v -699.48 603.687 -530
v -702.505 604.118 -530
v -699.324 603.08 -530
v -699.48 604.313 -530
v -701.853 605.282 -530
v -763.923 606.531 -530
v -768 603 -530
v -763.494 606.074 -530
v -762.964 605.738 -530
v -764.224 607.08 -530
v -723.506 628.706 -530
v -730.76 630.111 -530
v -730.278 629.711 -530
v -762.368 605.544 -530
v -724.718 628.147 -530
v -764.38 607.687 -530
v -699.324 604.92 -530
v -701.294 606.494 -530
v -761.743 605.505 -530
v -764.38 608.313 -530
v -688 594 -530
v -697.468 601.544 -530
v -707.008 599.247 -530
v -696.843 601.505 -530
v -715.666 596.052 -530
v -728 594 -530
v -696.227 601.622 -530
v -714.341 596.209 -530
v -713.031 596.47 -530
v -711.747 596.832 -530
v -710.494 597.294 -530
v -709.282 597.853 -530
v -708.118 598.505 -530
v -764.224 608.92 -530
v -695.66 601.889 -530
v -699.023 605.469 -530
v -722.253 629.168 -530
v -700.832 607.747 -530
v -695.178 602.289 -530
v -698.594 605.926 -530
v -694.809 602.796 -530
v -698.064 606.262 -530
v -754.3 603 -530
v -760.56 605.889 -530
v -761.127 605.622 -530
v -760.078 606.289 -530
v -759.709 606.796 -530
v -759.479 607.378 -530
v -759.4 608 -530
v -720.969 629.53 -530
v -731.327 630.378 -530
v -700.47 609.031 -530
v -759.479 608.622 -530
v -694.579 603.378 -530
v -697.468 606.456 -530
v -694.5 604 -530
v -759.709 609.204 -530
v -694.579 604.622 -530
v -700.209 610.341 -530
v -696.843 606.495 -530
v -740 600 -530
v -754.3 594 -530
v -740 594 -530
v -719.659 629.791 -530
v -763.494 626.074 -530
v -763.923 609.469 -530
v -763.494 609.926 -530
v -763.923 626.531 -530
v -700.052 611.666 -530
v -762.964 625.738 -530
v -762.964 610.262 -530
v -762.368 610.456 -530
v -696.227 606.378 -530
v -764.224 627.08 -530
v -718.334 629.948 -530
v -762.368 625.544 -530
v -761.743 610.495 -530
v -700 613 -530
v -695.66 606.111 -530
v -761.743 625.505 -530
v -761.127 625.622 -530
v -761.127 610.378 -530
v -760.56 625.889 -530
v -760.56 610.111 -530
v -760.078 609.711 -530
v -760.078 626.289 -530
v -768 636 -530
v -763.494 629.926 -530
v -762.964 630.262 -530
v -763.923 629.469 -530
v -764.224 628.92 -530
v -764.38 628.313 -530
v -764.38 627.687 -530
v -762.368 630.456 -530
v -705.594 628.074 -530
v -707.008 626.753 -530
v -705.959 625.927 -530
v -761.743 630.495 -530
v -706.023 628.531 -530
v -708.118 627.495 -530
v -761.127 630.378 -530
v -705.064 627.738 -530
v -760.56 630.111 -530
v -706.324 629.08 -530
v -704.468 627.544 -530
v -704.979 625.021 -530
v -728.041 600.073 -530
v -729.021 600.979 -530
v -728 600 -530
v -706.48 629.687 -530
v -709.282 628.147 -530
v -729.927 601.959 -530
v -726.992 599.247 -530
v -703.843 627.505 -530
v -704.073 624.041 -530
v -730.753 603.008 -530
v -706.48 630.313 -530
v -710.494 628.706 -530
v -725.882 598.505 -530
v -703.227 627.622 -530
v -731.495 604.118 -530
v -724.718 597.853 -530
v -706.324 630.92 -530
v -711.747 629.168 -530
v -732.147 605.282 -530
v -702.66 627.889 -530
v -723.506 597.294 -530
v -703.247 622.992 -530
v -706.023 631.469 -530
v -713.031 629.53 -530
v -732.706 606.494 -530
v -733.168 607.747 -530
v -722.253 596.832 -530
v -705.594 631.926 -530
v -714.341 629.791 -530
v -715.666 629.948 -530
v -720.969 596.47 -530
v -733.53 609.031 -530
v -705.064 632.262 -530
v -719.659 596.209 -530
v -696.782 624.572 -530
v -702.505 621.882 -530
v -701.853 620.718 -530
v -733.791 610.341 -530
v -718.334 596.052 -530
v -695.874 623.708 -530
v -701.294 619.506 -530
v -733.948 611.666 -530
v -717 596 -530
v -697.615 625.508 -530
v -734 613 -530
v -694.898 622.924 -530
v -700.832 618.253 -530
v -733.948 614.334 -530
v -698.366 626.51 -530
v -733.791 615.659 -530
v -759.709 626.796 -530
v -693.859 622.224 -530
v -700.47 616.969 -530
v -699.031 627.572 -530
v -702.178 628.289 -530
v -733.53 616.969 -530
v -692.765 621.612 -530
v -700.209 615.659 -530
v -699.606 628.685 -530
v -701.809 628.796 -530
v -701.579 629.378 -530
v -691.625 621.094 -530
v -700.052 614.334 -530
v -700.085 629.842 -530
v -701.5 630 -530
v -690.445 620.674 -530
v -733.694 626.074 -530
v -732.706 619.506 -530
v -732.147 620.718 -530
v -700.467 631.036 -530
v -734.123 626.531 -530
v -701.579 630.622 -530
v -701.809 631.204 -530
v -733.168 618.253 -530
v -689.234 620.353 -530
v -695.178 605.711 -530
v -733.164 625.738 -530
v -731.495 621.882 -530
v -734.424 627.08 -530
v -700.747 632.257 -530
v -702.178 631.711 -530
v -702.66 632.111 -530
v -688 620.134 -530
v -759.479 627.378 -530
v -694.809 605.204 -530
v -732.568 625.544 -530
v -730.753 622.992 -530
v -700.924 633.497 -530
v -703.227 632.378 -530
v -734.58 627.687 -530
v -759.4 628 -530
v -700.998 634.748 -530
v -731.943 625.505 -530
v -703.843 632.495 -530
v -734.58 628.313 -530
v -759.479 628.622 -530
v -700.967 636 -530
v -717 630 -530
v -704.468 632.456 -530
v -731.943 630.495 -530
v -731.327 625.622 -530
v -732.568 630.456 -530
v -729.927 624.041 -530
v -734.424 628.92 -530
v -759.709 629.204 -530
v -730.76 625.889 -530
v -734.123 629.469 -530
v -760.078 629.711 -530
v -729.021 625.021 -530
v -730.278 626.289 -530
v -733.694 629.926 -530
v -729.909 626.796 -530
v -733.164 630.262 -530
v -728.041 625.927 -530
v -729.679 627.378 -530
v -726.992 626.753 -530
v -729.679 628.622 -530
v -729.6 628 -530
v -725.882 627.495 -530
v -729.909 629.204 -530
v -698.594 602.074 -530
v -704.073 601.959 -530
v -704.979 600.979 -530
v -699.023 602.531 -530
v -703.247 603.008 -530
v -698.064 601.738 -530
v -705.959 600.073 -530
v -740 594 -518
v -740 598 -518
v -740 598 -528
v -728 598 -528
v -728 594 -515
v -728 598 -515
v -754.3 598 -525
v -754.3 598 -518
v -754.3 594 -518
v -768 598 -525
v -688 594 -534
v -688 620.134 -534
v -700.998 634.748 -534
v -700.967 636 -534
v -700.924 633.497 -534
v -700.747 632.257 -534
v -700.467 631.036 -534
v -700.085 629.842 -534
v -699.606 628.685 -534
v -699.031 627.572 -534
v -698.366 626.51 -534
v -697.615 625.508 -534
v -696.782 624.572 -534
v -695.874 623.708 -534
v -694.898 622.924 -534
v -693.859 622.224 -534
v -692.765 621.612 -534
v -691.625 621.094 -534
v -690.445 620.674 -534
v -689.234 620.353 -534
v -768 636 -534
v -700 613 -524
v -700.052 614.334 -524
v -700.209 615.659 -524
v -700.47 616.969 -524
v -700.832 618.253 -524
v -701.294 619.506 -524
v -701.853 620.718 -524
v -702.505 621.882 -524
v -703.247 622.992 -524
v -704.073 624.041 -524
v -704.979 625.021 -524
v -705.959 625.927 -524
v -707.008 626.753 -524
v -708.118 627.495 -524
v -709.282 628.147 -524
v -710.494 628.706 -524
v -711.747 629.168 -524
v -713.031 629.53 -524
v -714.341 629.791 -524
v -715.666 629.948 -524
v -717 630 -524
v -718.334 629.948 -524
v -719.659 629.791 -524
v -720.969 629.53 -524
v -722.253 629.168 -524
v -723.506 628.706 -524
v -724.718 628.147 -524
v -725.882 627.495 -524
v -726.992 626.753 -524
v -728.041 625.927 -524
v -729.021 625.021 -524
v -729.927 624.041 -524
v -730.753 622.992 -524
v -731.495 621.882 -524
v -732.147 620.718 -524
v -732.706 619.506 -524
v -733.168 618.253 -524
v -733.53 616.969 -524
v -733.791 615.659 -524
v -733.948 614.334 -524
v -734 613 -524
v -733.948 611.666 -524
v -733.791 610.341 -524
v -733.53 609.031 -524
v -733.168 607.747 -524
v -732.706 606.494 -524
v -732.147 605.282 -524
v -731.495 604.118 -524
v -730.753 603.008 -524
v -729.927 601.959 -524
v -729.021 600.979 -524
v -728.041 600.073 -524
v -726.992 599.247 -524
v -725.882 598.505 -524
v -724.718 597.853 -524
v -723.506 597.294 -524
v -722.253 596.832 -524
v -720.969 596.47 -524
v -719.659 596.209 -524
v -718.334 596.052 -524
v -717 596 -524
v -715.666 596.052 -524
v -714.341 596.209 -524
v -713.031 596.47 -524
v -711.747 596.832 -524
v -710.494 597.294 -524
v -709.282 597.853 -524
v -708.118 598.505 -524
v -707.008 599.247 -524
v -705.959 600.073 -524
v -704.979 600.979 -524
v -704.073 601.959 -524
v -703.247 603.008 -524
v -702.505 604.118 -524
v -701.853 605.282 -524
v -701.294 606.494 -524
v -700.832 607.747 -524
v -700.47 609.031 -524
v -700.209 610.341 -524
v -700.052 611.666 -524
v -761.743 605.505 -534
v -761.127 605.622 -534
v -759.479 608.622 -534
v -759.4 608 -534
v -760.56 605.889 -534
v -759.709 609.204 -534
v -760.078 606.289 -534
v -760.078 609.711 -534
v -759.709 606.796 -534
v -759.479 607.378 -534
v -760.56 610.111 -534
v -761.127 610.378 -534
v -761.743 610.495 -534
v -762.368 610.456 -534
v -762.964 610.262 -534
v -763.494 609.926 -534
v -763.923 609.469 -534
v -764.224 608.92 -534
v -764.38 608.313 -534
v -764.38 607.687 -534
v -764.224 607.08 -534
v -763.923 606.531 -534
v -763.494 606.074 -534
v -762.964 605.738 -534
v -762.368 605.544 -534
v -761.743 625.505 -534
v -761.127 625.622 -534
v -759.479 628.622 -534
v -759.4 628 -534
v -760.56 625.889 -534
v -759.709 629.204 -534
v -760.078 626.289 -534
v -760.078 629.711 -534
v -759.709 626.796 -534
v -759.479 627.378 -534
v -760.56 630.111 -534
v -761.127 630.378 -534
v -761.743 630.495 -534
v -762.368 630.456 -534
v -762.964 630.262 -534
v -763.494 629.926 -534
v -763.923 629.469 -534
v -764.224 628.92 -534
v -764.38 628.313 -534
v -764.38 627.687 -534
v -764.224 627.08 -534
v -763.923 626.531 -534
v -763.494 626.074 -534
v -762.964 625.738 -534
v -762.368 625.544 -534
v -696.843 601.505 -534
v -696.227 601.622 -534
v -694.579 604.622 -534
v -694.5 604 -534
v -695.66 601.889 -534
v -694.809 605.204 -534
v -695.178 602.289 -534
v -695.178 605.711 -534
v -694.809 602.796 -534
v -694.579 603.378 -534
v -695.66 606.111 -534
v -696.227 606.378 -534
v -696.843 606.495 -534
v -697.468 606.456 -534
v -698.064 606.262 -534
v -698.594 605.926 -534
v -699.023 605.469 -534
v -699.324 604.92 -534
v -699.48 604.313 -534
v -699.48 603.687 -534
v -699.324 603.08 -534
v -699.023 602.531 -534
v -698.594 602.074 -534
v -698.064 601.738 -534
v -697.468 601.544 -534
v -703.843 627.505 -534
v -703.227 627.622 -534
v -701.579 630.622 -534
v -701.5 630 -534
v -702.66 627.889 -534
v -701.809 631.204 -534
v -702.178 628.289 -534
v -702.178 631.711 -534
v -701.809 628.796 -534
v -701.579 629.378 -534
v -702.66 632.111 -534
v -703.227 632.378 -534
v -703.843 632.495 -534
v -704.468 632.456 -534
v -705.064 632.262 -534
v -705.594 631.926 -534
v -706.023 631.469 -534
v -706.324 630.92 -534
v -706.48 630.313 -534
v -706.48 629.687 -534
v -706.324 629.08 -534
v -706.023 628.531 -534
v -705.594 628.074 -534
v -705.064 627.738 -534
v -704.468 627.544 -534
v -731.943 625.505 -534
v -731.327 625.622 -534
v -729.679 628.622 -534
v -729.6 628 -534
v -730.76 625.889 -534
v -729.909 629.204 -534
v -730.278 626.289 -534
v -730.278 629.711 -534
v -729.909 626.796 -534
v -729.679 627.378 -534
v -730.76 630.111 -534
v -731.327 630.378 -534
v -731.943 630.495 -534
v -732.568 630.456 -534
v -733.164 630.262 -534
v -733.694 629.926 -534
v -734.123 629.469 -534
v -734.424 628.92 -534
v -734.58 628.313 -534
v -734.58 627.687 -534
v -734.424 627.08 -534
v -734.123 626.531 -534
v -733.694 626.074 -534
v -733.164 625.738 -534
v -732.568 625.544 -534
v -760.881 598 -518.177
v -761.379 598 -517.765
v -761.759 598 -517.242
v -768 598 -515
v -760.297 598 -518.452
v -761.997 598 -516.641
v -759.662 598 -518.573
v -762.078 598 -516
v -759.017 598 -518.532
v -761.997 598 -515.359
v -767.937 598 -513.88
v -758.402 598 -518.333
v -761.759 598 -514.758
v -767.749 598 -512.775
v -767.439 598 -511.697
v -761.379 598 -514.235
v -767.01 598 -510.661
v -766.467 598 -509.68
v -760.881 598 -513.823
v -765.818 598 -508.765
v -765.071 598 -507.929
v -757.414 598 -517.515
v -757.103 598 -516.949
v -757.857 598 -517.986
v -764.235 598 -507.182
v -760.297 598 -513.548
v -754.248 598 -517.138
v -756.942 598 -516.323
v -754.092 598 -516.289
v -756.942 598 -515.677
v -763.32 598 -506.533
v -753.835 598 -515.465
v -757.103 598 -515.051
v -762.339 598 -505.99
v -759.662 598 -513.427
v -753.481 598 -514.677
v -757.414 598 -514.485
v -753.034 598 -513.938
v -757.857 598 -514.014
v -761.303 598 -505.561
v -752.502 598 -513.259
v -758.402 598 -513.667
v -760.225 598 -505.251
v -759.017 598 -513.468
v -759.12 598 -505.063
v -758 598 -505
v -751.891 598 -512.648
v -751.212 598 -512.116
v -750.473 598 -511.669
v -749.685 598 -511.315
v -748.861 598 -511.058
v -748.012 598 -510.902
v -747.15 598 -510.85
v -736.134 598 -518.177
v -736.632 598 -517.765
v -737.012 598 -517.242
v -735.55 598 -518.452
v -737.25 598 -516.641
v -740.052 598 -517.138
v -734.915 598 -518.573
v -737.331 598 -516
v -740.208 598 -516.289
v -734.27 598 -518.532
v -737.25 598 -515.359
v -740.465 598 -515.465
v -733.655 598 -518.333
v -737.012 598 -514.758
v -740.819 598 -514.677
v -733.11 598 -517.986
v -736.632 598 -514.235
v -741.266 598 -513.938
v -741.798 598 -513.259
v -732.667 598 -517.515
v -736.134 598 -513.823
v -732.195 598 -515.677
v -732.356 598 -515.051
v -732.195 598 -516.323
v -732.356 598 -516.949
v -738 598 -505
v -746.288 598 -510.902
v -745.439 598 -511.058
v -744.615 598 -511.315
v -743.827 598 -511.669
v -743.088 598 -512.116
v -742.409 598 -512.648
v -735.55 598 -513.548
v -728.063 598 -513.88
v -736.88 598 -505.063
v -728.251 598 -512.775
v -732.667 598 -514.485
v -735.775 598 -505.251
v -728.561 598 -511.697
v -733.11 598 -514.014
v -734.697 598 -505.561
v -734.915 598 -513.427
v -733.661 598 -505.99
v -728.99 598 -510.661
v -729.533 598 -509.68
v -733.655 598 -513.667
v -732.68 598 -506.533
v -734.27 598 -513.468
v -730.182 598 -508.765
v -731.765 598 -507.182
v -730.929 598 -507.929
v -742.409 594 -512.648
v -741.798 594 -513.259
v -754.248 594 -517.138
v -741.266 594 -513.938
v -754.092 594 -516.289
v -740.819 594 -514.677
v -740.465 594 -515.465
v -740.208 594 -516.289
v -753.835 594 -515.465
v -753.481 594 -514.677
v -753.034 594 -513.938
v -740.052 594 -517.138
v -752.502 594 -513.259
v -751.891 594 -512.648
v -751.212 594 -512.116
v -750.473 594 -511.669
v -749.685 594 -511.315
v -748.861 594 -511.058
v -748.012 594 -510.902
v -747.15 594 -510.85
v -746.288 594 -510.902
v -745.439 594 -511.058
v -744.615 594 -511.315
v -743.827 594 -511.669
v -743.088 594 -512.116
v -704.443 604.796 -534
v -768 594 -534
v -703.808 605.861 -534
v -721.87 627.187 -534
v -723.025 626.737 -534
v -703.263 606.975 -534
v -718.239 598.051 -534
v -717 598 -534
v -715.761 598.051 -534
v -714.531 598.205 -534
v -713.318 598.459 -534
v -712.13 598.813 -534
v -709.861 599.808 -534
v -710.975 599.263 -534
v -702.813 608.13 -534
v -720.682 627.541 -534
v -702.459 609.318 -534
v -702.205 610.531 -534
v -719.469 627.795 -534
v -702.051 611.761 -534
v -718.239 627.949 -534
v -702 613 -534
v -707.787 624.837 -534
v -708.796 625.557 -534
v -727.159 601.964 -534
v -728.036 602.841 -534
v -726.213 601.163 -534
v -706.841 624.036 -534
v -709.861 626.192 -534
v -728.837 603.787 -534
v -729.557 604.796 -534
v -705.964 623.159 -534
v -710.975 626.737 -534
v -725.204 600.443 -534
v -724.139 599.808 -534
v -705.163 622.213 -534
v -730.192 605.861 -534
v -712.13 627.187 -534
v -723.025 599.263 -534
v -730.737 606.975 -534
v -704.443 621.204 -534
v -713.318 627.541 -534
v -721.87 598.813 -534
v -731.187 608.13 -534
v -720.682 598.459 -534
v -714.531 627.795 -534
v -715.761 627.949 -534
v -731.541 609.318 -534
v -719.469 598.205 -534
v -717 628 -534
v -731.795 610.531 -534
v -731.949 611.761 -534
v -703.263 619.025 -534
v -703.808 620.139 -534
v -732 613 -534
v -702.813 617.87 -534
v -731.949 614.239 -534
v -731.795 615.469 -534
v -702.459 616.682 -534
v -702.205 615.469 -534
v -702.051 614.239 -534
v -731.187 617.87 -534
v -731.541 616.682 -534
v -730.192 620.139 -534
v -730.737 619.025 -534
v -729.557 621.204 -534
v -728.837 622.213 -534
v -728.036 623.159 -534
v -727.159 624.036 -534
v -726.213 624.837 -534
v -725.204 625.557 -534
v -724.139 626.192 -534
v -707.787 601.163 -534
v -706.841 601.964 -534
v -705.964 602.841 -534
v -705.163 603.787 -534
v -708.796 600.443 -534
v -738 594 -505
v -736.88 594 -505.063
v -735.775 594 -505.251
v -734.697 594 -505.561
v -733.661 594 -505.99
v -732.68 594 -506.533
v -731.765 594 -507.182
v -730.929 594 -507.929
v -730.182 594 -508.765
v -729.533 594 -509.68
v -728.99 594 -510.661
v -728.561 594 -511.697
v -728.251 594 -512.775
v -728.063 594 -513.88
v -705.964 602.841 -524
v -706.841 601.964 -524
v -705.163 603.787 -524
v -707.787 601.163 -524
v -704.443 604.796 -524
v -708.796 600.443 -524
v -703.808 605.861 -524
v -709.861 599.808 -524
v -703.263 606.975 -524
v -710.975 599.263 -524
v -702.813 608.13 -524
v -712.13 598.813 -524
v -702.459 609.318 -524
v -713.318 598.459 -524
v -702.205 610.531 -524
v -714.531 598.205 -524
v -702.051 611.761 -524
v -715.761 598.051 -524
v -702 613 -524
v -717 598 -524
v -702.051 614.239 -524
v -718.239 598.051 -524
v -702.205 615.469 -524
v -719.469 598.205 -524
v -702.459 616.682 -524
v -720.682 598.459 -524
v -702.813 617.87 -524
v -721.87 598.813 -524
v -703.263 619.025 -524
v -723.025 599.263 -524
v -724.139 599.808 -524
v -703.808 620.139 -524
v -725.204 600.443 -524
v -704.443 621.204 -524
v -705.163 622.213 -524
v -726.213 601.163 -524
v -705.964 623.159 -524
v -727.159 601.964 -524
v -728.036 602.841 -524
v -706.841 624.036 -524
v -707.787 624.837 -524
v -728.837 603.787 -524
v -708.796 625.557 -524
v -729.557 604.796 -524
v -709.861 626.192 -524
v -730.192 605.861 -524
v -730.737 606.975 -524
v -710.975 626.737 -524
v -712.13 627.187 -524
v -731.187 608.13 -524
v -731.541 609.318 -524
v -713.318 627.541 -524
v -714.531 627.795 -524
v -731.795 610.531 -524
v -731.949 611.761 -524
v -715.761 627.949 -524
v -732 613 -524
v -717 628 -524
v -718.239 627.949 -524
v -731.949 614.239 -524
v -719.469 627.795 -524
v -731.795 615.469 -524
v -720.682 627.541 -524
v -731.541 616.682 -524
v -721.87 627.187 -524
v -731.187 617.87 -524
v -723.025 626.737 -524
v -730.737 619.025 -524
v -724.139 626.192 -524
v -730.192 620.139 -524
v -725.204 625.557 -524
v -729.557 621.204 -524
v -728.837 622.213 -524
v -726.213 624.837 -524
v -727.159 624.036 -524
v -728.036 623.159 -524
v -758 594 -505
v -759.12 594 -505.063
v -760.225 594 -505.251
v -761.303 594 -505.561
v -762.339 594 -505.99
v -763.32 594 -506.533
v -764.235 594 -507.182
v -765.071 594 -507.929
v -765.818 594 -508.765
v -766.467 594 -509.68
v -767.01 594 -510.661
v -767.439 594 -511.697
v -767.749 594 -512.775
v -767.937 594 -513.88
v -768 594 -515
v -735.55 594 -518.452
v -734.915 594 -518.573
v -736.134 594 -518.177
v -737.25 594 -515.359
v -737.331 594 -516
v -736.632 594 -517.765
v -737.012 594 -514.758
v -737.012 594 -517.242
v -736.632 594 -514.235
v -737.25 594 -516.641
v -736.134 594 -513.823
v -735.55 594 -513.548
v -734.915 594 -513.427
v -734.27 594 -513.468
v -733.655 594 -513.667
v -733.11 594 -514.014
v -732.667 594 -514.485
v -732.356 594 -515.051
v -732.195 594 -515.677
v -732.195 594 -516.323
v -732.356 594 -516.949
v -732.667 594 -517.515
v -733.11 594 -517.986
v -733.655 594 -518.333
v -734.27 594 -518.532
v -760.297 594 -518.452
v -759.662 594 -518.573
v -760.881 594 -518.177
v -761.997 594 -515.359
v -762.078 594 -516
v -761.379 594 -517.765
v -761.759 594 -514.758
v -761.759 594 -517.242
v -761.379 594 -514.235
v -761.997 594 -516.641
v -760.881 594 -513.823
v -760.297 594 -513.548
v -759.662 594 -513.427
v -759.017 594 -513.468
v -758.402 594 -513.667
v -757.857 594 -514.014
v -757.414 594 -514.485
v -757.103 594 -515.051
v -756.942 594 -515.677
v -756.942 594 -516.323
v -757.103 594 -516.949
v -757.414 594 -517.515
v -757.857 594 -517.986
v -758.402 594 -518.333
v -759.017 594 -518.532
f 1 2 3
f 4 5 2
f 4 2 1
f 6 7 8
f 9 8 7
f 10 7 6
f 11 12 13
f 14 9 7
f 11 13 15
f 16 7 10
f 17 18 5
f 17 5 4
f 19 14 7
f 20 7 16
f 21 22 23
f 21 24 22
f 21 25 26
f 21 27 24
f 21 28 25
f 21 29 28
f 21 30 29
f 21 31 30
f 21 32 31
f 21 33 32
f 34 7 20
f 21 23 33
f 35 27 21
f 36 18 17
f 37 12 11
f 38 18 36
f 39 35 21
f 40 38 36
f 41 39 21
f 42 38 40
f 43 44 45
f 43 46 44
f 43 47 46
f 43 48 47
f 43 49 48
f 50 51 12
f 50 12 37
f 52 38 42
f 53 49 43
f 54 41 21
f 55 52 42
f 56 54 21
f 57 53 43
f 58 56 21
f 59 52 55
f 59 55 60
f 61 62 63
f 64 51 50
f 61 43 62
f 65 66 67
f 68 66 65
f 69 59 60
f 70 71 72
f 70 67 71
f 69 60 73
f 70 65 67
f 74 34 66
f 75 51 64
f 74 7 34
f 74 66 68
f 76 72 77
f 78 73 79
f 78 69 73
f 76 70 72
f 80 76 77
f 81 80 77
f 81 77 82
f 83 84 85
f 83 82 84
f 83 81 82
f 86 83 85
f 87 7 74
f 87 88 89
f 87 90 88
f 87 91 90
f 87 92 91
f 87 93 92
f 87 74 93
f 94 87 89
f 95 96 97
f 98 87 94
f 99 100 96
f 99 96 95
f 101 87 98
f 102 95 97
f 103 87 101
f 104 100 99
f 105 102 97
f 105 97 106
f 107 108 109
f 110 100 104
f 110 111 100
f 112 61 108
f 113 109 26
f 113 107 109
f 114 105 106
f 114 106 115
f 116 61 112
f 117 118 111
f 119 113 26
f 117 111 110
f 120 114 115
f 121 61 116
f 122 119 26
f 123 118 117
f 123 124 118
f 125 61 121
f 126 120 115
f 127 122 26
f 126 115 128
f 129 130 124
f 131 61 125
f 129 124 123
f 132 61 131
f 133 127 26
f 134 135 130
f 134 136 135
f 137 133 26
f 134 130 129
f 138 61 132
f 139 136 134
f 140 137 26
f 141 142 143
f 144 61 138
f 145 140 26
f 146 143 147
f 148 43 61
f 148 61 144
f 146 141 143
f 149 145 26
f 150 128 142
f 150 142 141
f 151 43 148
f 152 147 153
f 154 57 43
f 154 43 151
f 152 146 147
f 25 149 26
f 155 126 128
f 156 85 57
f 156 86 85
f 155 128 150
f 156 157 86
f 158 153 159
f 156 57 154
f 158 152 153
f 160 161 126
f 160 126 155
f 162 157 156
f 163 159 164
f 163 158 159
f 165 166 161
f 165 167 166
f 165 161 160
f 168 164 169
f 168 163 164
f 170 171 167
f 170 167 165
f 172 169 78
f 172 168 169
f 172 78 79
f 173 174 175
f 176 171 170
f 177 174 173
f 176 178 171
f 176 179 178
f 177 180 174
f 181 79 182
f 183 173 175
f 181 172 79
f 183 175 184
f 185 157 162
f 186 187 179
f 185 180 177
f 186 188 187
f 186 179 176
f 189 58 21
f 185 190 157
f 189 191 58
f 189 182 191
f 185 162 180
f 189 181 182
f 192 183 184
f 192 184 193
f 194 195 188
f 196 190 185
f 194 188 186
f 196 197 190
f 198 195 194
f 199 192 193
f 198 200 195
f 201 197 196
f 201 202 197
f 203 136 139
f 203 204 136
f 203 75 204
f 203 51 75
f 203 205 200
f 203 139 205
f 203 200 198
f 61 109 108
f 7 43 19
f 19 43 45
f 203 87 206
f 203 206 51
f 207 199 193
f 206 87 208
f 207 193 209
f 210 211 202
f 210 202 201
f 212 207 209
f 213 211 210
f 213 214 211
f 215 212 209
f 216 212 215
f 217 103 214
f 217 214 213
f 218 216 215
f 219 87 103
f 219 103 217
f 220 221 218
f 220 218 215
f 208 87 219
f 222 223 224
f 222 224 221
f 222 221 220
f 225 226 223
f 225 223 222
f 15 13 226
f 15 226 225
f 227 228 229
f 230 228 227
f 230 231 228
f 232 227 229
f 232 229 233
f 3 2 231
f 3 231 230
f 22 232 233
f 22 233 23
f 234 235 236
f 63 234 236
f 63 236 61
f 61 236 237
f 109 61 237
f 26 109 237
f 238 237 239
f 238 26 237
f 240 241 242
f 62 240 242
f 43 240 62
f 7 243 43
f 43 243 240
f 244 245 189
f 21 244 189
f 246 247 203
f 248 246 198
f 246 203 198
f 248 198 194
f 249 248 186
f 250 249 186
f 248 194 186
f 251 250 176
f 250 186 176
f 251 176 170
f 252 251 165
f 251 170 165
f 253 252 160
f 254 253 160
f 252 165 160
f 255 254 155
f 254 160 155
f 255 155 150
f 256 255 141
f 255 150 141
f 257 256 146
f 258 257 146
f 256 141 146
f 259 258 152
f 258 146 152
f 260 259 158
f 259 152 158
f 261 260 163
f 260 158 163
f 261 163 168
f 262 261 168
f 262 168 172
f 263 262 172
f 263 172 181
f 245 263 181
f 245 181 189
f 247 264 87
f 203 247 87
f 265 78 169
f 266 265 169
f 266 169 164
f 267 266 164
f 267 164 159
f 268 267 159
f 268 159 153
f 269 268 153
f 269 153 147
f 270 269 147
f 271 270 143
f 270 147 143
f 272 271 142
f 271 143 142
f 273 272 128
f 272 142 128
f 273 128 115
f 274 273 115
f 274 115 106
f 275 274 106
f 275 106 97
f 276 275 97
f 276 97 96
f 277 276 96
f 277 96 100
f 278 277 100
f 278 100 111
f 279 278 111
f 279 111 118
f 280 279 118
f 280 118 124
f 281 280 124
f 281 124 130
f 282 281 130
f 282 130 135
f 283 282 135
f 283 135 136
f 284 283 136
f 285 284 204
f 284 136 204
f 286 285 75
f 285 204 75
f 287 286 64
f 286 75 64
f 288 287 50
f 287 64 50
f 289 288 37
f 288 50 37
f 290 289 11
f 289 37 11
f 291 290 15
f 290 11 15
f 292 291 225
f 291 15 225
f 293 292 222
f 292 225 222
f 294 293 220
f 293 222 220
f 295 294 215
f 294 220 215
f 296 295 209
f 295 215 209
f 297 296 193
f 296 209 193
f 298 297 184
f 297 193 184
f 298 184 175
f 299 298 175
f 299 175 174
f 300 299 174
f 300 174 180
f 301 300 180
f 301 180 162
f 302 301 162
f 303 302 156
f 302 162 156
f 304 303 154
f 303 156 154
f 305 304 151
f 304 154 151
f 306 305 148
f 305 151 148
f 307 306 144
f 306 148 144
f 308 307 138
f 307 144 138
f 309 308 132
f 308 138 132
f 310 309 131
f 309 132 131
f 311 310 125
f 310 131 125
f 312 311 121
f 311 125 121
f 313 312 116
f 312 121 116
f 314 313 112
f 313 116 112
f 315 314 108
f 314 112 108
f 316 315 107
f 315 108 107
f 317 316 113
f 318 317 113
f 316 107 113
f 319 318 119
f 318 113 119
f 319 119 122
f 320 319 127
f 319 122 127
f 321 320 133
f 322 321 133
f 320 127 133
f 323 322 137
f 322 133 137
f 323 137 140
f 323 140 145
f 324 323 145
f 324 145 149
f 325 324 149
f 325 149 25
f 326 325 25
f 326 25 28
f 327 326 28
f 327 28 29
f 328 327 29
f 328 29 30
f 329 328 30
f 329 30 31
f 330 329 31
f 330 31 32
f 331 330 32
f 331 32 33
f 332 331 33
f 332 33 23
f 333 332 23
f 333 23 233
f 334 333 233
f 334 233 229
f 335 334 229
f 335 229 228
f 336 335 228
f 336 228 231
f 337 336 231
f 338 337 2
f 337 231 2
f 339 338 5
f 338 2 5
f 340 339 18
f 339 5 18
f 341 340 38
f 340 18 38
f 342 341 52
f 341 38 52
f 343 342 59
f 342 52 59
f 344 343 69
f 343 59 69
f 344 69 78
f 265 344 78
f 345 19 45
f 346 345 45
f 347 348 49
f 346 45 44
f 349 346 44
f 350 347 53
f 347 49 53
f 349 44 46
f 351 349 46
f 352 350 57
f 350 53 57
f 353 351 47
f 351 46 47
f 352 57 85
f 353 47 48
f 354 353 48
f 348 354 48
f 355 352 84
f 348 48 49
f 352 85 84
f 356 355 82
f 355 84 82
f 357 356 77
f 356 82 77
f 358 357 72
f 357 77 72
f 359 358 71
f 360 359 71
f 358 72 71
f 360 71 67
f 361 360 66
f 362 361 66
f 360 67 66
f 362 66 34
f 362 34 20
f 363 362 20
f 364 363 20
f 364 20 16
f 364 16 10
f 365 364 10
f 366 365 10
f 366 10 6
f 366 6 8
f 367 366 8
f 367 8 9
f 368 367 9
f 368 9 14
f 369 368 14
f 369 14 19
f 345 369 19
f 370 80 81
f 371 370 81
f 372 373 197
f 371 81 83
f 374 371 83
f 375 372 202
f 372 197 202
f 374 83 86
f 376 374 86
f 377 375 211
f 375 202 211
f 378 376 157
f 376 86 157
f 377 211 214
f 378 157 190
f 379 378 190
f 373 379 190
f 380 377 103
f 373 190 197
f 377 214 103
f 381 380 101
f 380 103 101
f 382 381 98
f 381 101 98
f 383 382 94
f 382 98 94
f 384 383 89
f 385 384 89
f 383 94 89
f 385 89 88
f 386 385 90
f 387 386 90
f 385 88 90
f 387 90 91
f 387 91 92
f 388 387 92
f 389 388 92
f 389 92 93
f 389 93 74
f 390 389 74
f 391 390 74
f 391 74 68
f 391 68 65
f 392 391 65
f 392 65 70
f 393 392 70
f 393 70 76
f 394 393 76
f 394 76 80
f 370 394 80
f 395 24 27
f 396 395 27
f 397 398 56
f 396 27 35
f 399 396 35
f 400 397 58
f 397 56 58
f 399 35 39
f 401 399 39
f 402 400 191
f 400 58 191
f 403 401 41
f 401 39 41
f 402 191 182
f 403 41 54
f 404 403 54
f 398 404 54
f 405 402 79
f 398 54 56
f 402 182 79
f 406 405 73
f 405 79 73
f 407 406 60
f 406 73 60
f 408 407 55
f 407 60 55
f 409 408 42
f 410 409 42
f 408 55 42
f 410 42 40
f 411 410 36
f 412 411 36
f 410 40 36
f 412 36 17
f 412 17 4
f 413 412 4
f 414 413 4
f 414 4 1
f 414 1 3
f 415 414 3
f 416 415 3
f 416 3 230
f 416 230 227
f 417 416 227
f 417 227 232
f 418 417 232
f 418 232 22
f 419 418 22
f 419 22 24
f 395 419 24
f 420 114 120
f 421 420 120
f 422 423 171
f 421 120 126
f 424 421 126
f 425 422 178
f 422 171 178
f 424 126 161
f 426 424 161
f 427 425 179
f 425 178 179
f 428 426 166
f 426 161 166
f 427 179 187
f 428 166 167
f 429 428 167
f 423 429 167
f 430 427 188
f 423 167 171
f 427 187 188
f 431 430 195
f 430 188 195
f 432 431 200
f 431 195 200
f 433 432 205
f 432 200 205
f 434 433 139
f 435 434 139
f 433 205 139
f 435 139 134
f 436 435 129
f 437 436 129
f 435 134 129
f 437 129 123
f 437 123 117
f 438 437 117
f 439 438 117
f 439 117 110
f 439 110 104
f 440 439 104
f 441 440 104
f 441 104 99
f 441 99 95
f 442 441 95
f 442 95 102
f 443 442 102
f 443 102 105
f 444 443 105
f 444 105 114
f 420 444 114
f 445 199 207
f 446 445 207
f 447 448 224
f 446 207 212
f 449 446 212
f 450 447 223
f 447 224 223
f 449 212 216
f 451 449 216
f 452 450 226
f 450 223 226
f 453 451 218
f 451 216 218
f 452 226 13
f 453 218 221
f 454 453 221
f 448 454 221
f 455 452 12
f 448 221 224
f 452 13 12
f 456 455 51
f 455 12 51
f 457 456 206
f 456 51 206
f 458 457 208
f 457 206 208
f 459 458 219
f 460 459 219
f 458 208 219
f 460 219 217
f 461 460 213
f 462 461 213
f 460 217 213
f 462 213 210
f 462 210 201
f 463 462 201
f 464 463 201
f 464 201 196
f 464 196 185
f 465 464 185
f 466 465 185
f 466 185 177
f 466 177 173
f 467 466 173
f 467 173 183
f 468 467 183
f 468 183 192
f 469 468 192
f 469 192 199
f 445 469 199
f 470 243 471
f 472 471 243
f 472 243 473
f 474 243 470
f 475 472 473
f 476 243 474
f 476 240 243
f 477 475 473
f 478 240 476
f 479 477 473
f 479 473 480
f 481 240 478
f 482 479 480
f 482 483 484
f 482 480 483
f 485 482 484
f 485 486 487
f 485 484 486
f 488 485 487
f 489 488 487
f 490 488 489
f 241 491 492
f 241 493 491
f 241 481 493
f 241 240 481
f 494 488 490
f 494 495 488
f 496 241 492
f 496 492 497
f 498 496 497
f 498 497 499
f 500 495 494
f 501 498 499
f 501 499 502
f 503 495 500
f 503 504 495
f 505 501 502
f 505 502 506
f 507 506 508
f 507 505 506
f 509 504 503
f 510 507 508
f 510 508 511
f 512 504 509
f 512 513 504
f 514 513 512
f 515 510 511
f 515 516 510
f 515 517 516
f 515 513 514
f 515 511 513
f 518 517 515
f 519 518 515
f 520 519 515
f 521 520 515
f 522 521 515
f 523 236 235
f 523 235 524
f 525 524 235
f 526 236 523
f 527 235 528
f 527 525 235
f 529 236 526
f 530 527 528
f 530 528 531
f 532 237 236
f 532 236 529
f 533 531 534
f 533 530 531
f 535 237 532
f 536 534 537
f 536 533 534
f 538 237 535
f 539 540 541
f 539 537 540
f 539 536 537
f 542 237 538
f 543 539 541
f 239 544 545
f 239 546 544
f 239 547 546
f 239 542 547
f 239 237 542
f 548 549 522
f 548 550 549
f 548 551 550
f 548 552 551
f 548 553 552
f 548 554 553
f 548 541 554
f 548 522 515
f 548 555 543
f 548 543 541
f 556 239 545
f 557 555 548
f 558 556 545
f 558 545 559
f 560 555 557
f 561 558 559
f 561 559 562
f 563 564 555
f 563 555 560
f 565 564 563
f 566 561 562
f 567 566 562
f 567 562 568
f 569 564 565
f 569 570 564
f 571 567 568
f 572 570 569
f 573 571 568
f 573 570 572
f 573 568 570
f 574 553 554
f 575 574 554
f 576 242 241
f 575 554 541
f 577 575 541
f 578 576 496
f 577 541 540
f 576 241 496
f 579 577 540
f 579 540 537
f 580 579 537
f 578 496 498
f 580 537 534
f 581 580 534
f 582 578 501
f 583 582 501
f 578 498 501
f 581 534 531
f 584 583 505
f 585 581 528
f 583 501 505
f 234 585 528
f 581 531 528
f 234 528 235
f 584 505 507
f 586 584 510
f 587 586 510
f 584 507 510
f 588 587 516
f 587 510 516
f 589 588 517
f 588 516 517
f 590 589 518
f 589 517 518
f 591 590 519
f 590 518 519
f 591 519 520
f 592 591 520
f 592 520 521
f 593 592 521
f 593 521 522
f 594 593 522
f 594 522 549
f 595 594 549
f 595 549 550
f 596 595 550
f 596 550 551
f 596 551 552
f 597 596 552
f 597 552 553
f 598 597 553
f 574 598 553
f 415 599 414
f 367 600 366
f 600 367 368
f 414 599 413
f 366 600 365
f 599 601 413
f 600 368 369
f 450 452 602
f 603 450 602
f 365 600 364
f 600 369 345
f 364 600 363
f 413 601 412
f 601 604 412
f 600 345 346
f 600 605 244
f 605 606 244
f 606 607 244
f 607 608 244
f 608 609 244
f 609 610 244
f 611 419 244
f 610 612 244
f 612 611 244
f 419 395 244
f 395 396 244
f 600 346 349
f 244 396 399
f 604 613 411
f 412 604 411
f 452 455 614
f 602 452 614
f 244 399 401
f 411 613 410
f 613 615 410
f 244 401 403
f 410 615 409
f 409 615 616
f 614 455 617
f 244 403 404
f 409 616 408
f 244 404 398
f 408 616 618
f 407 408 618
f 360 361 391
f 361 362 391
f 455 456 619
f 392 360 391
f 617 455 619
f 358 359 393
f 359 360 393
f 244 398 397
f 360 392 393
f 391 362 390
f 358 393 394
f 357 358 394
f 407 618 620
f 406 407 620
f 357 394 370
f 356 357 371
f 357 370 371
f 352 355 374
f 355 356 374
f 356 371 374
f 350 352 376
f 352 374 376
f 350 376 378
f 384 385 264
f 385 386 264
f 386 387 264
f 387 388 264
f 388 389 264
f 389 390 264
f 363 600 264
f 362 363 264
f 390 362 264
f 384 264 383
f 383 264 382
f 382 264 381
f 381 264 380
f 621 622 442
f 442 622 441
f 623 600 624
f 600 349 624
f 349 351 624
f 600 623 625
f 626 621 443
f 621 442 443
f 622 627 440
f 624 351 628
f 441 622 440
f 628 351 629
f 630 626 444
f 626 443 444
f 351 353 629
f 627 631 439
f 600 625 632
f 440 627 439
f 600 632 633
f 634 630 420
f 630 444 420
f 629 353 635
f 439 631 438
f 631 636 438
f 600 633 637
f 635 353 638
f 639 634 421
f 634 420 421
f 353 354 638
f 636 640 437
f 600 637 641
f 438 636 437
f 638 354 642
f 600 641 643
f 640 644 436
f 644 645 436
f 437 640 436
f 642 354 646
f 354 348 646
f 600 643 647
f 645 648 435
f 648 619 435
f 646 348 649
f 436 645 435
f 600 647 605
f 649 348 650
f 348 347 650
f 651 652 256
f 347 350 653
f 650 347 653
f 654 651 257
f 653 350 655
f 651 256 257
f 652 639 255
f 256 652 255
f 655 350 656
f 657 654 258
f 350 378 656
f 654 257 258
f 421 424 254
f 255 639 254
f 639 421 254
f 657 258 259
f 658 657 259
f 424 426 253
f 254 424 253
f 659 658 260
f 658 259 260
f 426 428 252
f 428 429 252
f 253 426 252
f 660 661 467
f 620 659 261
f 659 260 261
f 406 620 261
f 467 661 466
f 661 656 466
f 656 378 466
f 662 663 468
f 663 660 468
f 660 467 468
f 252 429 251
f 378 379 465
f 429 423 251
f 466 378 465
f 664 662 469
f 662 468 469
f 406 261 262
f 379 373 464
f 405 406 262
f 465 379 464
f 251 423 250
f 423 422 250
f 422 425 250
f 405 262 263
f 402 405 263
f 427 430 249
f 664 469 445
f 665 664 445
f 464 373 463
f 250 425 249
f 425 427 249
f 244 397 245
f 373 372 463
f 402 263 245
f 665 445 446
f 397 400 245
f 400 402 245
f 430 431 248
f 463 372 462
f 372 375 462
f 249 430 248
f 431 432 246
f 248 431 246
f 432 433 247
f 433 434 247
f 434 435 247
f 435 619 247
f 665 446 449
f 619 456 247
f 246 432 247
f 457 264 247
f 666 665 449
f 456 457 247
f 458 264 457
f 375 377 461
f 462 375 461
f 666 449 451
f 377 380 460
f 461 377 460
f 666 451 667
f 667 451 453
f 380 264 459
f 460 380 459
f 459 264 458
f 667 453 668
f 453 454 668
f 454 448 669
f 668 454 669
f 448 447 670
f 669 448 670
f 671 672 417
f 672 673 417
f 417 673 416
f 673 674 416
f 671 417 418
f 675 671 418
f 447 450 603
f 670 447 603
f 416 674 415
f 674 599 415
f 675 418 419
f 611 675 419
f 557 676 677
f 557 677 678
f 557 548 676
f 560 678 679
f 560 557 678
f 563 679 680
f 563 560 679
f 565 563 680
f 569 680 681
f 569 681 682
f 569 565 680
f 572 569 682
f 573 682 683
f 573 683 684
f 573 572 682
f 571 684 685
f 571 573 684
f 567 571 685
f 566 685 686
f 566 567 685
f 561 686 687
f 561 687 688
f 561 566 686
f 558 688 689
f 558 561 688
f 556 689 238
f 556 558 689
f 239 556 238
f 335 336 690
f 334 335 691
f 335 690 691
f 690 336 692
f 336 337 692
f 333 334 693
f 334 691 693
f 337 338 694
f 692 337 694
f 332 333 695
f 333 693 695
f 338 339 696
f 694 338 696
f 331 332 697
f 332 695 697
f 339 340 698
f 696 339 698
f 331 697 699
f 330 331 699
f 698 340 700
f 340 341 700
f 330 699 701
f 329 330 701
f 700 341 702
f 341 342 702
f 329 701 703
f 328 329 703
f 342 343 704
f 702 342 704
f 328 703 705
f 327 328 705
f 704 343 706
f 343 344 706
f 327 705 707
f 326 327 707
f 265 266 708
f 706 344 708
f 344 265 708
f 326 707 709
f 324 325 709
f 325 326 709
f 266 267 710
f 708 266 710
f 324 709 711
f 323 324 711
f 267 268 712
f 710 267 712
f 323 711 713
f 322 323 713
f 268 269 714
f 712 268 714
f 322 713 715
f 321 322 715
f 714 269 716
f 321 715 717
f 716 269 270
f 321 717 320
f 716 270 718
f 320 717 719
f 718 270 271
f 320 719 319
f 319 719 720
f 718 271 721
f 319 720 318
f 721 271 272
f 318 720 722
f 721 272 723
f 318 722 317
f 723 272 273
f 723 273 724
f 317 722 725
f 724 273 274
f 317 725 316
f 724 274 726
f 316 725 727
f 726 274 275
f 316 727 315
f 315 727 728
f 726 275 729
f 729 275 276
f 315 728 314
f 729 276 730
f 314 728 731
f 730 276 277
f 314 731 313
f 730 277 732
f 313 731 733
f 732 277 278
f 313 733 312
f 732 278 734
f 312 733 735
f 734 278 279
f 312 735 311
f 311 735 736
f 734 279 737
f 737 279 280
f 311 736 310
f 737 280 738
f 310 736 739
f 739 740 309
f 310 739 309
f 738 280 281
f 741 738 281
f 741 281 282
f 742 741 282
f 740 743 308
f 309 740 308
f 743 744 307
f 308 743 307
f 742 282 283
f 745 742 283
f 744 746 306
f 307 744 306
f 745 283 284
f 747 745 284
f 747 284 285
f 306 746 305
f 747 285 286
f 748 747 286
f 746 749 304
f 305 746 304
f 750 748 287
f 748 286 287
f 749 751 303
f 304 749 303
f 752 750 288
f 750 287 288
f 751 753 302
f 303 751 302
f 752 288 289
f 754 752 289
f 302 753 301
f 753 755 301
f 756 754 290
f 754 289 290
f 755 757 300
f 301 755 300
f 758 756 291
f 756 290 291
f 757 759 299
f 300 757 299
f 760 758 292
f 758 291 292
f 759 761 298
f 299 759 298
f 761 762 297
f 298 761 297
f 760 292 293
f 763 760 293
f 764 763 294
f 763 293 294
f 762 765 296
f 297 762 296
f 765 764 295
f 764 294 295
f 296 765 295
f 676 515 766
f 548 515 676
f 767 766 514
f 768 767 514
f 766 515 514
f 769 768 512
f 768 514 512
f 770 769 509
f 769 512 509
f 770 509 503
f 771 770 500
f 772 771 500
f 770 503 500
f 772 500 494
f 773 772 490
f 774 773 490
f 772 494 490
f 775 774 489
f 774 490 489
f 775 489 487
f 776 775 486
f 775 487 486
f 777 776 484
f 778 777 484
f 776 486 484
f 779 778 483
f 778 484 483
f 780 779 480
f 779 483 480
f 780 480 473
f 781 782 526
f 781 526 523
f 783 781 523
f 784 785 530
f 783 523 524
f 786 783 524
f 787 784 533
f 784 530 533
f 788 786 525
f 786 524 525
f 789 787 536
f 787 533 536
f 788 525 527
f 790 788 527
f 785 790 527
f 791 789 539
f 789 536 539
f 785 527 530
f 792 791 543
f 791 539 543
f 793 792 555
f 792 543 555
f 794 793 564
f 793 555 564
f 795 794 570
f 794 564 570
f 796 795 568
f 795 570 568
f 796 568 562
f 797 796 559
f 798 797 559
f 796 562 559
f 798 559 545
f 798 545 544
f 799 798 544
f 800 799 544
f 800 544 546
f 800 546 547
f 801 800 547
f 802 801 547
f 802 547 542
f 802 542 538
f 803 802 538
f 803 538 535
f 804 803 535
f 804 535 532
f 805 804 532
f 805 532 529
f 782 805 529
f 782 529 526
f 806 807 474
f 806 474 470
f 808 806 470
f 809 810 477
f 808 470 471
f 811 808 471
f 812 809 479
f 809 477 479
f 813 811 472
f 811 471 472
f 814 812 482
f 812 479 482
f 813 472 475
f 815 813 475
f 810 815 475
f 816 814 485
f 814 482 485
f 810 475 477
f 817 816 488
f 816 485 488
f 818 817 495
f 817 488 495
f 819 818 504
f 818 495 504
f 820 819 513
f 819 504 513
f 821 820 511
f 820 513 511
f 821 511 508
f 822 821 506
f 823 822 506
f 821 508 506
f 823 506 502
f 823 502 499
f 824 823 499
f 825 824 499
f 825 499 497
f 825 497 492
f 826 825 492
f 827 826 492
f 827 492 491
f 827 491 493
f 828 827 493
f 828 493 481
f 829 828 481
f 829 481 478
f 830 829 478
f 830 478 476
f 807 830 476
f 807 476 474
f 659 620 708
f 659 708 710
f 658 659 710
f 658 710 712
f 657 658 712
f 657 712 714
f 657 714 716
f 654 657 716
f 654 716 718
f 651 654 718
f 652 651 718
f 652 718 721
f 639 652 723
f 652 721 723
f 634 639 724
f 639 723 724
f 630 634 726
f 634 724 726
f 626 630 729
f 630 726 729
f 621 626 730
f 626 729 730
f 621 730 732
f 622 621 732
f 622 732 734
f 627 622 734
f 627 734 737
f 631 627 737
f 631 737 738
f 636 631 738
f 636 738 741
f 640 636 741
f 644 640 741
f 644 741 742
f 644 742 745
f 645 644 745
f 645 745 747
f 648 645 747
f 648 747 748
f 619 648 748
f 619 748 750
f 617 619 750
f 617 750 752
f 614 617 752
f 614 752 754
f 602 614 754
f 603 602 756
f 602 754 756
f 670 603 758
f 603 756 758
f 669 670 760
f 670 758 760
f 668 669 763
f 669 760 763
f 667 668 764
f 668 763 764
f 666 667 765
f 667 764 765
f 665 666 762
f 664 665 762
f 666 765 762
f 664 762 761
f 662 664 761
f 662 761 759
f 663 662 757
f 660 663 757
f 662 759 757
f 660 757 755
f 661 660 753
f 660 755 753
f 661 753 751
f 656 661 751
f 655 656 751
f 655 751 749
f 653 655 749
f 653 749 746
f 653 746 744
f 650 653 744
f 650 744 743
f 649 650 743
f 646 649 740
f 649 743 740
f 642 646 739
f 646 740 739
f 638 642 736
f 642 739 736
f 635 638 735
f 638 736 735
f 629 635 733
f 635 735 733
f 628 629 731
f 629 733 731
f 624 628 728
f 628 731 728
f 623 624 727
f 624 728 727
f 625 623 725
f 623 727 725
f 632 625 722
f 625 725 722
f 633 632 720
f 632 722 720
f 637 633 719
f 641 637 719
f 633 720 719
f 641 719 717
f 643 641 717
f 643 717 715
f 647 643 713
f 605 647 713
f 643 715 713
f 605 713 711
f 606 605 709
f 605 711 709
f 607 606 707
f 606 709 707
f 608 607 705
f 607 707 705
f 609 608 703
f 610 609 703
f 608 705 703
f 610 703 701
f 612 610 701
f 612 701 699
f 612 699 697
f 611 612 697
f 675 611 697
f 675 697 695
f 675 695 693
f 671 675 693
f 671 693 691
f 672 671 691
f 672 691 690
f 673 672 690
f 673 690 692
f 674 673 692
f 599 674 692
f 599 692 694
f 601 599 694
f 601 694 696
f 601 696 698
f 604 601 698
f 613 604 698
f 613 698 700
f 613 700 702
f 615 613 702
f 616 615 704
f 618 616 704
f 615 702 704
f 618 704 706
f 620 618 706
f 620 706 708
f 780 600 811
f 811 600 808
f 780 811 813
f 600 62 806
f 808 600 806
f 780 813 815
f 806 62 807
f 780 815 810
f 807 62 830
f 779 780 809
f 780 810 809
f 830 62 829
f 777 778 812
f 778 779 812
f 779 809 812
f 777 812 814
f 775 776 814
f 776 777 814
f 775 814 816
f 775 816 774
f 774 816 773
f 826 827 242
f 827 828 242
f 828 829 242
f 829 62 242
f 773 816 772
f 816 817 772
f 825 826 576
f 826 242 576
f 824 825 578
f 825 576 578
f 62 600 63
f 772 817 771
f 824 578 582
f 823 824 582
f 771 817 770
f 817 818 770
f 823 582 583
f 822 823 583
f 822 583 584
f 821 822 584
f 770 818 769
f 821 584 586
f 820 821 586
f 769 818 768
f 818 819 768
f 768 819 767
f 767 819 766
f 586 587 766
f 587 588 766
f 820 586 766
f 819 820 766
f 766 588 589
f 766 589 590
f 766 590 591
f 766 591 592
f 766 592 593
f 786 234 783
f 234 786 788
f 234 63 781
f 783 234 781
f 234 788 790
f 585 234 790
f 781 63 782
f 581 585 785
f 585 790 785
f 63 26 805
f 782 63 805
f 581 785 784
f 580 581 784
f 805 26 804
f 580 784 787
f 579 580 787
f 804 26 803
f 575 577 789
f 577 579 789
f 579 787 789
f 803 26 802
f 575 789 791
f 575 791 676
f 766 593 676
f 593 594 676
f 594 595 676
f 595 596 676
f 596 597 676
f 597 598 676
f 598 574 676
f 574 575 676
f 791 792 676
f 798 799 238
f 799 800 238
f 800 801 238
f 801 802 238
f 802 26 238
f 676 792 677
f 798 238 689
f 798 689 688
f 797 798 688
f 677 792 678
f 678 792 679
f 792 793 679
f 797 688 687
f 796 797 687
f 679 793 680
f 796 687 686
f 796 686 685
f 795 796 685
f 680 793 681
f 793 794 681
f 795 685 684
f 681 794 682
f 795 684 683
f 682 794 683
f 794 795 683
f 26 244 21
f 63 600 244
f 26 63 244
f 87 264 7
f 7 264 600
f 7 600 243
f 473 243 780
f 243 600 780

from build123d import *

# Parameters (mm, degrees)
BOX_W           = 80
BOX_H           = 42
BOX_DEPTH       = 4
SKETCH001_R     = 15
POCKET001_DEPTH = 4.001
SKETCH003_R     = 17
PAD_DEPTH       = 6
SKETCH004_R     = 15
POCKET003_DEPTH = 10.001
SKETCH005_R     = 2.5
POCKET004_DEPTH = 4.001
BOX001_W        = 40
BOX001_H        = 4
BOX001_DEPTH    = 25
SKETCH002_R     = 2.5781
POCKET002_DEPTH = 4.001
FILLET_R        = 10
FILLET001_R     = 10
CHAMFER_SIZE    = 5
CHAMFER001_SIZE = 2


with BuildPart() as pocket004:
    # Box → Box (new body)
    with BuildSketch(Plane(origin=(-768, 594, -534), x_dir=(1, 0, 0), z_dir=(0, 0, 1))):
        with Locations((40, 21)):
            Rectangle(BOX_W, BOX_H)
    extrude(amount=BOX_DEPTH)

    # Sketch001 → Pocket001 (cut, through all)
    with BuildSketch(Plane(origin=(-768, 594, -530), x_dir=(1, 0, 0), z_dir=(0, 0, 1))):
        with Locations((82, 41)):
            Circle(SKETCH001_R)
    extrude(amount=-POCKET001_DEPTH, mode=Mode.SUBTRACT)

    # Sketch003 → Pad (new body)
    with BuildSketch(Plane(origin=(-768, 594, -530), x_dir=(1, 0, 0), z_dir=(0, 0, 1))):
        with Locations((51, 19)):
            Circle(SKETCH003_R)
    extrude(amount=PAD_DEPTH)

    # Sketch004 → Pocket003 (cut, through all)
    with BuildSketch(Plane(origin=(-768, 594, -524), x_dir=(1, 0, 0), z_dir=(0, 0, 1))):
        with Locations((51, 19)):
            Circle(SKETCH004_R)
    extrude(amount=-POCKET003_DEPTH, mode=Mode.SUBTRACT)

    # Sketch005 → Pocket004 (cut, through all)
    with BuildSketch(Plane(origin=(-768, 594, -530), x_dir=(1, 0, 0), z_dir=(0, 0, 1))):
        with Locations((6.1, 34)):
            Circle(SKETCH005_R)
        with Locations((6.1, 14)):
            Circle(SKETCH005_R)
        with Locations((35.9, 34)):
            Circle(SKETCH005_R)
        with Locations((64, 36)):
            Circle(SKETCH005_R)
        with Locations((71, 10)):
            Circle(SKETCH005_R)
    extrude(amount=-POCKET004_DEPTH, mode=Mode.SUBTRACT)


with BuildPart() as chamfer001:
    # Box001 → Box001 (new body)
    with BuildSketch(Plane(origin=(-768, 594, -530), x_dir=(1, 0, 0), z_dir=(0, 0, 1))):
        with Locations((20, 2)):
            Rectangle(BOX001_W, BOX001_H)
    extrude(amount=BOX001_DEPTH)

    # Sketch002 → Pocket002 (cut, through all)
    with BuildSketch(Plane(origin=(-768, 598, -530), x_dir=(-1, 0, 0), z_dir=(0, 1, 0))):
        with Locations((-33.247, 14)):
            Circle(SKETCH002_R)
        with Locations((-8.5, 14)):
            Circle(SKETCH002_R)
        with BuildLine():
            ThreePointArc((-13.7, 12), (-20.85, 19.15), (-28, 12))
            Line((-28, 12), (-28, 0))
            Line((-28, 0), (-13.7, 0))
            Line((-13.7, 12), (-13.7, 0))
        make_face()
    extrude(amount=-POCKET002_DEPTH, mode=Mode.SUBTRACT)

    # Fillet
    fillet_edges = [chamfer001.edges().sort_by_distance(p)[0] for p in [
        (-728, 596, -505),
    ]]
    fillet(fillet_edges, radius=FILLET_R)

    # Fillet001
    fillet001_edges = [chamfer001.edges().sort_by_distance(p)[0] for p in [
        (-768, 596, -505),
    ]]
    fillet(fillet001_edges, radius=FILLET001_R)

    # Fusion: union Pocket004
    add(pocket004.part)

    # Chamfer
    chamfer_edges = [chamfer001.edges().sort_by_distance(p)[0] for p in [
        (-761.15, 598, -530),
    ]]
    chamfer(chamfer_edges, length=CHAMFER_SIZE)

    # Chamfer001
    chamfer001_edges = [chamfer001.edges().sort_by_distance(p)[0] for p in [
        (-734, 598, -530),
    ]]
    chamfer(chamfer001_edges, length=CHAMFER001_SIZE)


solid = chamfer001.part
